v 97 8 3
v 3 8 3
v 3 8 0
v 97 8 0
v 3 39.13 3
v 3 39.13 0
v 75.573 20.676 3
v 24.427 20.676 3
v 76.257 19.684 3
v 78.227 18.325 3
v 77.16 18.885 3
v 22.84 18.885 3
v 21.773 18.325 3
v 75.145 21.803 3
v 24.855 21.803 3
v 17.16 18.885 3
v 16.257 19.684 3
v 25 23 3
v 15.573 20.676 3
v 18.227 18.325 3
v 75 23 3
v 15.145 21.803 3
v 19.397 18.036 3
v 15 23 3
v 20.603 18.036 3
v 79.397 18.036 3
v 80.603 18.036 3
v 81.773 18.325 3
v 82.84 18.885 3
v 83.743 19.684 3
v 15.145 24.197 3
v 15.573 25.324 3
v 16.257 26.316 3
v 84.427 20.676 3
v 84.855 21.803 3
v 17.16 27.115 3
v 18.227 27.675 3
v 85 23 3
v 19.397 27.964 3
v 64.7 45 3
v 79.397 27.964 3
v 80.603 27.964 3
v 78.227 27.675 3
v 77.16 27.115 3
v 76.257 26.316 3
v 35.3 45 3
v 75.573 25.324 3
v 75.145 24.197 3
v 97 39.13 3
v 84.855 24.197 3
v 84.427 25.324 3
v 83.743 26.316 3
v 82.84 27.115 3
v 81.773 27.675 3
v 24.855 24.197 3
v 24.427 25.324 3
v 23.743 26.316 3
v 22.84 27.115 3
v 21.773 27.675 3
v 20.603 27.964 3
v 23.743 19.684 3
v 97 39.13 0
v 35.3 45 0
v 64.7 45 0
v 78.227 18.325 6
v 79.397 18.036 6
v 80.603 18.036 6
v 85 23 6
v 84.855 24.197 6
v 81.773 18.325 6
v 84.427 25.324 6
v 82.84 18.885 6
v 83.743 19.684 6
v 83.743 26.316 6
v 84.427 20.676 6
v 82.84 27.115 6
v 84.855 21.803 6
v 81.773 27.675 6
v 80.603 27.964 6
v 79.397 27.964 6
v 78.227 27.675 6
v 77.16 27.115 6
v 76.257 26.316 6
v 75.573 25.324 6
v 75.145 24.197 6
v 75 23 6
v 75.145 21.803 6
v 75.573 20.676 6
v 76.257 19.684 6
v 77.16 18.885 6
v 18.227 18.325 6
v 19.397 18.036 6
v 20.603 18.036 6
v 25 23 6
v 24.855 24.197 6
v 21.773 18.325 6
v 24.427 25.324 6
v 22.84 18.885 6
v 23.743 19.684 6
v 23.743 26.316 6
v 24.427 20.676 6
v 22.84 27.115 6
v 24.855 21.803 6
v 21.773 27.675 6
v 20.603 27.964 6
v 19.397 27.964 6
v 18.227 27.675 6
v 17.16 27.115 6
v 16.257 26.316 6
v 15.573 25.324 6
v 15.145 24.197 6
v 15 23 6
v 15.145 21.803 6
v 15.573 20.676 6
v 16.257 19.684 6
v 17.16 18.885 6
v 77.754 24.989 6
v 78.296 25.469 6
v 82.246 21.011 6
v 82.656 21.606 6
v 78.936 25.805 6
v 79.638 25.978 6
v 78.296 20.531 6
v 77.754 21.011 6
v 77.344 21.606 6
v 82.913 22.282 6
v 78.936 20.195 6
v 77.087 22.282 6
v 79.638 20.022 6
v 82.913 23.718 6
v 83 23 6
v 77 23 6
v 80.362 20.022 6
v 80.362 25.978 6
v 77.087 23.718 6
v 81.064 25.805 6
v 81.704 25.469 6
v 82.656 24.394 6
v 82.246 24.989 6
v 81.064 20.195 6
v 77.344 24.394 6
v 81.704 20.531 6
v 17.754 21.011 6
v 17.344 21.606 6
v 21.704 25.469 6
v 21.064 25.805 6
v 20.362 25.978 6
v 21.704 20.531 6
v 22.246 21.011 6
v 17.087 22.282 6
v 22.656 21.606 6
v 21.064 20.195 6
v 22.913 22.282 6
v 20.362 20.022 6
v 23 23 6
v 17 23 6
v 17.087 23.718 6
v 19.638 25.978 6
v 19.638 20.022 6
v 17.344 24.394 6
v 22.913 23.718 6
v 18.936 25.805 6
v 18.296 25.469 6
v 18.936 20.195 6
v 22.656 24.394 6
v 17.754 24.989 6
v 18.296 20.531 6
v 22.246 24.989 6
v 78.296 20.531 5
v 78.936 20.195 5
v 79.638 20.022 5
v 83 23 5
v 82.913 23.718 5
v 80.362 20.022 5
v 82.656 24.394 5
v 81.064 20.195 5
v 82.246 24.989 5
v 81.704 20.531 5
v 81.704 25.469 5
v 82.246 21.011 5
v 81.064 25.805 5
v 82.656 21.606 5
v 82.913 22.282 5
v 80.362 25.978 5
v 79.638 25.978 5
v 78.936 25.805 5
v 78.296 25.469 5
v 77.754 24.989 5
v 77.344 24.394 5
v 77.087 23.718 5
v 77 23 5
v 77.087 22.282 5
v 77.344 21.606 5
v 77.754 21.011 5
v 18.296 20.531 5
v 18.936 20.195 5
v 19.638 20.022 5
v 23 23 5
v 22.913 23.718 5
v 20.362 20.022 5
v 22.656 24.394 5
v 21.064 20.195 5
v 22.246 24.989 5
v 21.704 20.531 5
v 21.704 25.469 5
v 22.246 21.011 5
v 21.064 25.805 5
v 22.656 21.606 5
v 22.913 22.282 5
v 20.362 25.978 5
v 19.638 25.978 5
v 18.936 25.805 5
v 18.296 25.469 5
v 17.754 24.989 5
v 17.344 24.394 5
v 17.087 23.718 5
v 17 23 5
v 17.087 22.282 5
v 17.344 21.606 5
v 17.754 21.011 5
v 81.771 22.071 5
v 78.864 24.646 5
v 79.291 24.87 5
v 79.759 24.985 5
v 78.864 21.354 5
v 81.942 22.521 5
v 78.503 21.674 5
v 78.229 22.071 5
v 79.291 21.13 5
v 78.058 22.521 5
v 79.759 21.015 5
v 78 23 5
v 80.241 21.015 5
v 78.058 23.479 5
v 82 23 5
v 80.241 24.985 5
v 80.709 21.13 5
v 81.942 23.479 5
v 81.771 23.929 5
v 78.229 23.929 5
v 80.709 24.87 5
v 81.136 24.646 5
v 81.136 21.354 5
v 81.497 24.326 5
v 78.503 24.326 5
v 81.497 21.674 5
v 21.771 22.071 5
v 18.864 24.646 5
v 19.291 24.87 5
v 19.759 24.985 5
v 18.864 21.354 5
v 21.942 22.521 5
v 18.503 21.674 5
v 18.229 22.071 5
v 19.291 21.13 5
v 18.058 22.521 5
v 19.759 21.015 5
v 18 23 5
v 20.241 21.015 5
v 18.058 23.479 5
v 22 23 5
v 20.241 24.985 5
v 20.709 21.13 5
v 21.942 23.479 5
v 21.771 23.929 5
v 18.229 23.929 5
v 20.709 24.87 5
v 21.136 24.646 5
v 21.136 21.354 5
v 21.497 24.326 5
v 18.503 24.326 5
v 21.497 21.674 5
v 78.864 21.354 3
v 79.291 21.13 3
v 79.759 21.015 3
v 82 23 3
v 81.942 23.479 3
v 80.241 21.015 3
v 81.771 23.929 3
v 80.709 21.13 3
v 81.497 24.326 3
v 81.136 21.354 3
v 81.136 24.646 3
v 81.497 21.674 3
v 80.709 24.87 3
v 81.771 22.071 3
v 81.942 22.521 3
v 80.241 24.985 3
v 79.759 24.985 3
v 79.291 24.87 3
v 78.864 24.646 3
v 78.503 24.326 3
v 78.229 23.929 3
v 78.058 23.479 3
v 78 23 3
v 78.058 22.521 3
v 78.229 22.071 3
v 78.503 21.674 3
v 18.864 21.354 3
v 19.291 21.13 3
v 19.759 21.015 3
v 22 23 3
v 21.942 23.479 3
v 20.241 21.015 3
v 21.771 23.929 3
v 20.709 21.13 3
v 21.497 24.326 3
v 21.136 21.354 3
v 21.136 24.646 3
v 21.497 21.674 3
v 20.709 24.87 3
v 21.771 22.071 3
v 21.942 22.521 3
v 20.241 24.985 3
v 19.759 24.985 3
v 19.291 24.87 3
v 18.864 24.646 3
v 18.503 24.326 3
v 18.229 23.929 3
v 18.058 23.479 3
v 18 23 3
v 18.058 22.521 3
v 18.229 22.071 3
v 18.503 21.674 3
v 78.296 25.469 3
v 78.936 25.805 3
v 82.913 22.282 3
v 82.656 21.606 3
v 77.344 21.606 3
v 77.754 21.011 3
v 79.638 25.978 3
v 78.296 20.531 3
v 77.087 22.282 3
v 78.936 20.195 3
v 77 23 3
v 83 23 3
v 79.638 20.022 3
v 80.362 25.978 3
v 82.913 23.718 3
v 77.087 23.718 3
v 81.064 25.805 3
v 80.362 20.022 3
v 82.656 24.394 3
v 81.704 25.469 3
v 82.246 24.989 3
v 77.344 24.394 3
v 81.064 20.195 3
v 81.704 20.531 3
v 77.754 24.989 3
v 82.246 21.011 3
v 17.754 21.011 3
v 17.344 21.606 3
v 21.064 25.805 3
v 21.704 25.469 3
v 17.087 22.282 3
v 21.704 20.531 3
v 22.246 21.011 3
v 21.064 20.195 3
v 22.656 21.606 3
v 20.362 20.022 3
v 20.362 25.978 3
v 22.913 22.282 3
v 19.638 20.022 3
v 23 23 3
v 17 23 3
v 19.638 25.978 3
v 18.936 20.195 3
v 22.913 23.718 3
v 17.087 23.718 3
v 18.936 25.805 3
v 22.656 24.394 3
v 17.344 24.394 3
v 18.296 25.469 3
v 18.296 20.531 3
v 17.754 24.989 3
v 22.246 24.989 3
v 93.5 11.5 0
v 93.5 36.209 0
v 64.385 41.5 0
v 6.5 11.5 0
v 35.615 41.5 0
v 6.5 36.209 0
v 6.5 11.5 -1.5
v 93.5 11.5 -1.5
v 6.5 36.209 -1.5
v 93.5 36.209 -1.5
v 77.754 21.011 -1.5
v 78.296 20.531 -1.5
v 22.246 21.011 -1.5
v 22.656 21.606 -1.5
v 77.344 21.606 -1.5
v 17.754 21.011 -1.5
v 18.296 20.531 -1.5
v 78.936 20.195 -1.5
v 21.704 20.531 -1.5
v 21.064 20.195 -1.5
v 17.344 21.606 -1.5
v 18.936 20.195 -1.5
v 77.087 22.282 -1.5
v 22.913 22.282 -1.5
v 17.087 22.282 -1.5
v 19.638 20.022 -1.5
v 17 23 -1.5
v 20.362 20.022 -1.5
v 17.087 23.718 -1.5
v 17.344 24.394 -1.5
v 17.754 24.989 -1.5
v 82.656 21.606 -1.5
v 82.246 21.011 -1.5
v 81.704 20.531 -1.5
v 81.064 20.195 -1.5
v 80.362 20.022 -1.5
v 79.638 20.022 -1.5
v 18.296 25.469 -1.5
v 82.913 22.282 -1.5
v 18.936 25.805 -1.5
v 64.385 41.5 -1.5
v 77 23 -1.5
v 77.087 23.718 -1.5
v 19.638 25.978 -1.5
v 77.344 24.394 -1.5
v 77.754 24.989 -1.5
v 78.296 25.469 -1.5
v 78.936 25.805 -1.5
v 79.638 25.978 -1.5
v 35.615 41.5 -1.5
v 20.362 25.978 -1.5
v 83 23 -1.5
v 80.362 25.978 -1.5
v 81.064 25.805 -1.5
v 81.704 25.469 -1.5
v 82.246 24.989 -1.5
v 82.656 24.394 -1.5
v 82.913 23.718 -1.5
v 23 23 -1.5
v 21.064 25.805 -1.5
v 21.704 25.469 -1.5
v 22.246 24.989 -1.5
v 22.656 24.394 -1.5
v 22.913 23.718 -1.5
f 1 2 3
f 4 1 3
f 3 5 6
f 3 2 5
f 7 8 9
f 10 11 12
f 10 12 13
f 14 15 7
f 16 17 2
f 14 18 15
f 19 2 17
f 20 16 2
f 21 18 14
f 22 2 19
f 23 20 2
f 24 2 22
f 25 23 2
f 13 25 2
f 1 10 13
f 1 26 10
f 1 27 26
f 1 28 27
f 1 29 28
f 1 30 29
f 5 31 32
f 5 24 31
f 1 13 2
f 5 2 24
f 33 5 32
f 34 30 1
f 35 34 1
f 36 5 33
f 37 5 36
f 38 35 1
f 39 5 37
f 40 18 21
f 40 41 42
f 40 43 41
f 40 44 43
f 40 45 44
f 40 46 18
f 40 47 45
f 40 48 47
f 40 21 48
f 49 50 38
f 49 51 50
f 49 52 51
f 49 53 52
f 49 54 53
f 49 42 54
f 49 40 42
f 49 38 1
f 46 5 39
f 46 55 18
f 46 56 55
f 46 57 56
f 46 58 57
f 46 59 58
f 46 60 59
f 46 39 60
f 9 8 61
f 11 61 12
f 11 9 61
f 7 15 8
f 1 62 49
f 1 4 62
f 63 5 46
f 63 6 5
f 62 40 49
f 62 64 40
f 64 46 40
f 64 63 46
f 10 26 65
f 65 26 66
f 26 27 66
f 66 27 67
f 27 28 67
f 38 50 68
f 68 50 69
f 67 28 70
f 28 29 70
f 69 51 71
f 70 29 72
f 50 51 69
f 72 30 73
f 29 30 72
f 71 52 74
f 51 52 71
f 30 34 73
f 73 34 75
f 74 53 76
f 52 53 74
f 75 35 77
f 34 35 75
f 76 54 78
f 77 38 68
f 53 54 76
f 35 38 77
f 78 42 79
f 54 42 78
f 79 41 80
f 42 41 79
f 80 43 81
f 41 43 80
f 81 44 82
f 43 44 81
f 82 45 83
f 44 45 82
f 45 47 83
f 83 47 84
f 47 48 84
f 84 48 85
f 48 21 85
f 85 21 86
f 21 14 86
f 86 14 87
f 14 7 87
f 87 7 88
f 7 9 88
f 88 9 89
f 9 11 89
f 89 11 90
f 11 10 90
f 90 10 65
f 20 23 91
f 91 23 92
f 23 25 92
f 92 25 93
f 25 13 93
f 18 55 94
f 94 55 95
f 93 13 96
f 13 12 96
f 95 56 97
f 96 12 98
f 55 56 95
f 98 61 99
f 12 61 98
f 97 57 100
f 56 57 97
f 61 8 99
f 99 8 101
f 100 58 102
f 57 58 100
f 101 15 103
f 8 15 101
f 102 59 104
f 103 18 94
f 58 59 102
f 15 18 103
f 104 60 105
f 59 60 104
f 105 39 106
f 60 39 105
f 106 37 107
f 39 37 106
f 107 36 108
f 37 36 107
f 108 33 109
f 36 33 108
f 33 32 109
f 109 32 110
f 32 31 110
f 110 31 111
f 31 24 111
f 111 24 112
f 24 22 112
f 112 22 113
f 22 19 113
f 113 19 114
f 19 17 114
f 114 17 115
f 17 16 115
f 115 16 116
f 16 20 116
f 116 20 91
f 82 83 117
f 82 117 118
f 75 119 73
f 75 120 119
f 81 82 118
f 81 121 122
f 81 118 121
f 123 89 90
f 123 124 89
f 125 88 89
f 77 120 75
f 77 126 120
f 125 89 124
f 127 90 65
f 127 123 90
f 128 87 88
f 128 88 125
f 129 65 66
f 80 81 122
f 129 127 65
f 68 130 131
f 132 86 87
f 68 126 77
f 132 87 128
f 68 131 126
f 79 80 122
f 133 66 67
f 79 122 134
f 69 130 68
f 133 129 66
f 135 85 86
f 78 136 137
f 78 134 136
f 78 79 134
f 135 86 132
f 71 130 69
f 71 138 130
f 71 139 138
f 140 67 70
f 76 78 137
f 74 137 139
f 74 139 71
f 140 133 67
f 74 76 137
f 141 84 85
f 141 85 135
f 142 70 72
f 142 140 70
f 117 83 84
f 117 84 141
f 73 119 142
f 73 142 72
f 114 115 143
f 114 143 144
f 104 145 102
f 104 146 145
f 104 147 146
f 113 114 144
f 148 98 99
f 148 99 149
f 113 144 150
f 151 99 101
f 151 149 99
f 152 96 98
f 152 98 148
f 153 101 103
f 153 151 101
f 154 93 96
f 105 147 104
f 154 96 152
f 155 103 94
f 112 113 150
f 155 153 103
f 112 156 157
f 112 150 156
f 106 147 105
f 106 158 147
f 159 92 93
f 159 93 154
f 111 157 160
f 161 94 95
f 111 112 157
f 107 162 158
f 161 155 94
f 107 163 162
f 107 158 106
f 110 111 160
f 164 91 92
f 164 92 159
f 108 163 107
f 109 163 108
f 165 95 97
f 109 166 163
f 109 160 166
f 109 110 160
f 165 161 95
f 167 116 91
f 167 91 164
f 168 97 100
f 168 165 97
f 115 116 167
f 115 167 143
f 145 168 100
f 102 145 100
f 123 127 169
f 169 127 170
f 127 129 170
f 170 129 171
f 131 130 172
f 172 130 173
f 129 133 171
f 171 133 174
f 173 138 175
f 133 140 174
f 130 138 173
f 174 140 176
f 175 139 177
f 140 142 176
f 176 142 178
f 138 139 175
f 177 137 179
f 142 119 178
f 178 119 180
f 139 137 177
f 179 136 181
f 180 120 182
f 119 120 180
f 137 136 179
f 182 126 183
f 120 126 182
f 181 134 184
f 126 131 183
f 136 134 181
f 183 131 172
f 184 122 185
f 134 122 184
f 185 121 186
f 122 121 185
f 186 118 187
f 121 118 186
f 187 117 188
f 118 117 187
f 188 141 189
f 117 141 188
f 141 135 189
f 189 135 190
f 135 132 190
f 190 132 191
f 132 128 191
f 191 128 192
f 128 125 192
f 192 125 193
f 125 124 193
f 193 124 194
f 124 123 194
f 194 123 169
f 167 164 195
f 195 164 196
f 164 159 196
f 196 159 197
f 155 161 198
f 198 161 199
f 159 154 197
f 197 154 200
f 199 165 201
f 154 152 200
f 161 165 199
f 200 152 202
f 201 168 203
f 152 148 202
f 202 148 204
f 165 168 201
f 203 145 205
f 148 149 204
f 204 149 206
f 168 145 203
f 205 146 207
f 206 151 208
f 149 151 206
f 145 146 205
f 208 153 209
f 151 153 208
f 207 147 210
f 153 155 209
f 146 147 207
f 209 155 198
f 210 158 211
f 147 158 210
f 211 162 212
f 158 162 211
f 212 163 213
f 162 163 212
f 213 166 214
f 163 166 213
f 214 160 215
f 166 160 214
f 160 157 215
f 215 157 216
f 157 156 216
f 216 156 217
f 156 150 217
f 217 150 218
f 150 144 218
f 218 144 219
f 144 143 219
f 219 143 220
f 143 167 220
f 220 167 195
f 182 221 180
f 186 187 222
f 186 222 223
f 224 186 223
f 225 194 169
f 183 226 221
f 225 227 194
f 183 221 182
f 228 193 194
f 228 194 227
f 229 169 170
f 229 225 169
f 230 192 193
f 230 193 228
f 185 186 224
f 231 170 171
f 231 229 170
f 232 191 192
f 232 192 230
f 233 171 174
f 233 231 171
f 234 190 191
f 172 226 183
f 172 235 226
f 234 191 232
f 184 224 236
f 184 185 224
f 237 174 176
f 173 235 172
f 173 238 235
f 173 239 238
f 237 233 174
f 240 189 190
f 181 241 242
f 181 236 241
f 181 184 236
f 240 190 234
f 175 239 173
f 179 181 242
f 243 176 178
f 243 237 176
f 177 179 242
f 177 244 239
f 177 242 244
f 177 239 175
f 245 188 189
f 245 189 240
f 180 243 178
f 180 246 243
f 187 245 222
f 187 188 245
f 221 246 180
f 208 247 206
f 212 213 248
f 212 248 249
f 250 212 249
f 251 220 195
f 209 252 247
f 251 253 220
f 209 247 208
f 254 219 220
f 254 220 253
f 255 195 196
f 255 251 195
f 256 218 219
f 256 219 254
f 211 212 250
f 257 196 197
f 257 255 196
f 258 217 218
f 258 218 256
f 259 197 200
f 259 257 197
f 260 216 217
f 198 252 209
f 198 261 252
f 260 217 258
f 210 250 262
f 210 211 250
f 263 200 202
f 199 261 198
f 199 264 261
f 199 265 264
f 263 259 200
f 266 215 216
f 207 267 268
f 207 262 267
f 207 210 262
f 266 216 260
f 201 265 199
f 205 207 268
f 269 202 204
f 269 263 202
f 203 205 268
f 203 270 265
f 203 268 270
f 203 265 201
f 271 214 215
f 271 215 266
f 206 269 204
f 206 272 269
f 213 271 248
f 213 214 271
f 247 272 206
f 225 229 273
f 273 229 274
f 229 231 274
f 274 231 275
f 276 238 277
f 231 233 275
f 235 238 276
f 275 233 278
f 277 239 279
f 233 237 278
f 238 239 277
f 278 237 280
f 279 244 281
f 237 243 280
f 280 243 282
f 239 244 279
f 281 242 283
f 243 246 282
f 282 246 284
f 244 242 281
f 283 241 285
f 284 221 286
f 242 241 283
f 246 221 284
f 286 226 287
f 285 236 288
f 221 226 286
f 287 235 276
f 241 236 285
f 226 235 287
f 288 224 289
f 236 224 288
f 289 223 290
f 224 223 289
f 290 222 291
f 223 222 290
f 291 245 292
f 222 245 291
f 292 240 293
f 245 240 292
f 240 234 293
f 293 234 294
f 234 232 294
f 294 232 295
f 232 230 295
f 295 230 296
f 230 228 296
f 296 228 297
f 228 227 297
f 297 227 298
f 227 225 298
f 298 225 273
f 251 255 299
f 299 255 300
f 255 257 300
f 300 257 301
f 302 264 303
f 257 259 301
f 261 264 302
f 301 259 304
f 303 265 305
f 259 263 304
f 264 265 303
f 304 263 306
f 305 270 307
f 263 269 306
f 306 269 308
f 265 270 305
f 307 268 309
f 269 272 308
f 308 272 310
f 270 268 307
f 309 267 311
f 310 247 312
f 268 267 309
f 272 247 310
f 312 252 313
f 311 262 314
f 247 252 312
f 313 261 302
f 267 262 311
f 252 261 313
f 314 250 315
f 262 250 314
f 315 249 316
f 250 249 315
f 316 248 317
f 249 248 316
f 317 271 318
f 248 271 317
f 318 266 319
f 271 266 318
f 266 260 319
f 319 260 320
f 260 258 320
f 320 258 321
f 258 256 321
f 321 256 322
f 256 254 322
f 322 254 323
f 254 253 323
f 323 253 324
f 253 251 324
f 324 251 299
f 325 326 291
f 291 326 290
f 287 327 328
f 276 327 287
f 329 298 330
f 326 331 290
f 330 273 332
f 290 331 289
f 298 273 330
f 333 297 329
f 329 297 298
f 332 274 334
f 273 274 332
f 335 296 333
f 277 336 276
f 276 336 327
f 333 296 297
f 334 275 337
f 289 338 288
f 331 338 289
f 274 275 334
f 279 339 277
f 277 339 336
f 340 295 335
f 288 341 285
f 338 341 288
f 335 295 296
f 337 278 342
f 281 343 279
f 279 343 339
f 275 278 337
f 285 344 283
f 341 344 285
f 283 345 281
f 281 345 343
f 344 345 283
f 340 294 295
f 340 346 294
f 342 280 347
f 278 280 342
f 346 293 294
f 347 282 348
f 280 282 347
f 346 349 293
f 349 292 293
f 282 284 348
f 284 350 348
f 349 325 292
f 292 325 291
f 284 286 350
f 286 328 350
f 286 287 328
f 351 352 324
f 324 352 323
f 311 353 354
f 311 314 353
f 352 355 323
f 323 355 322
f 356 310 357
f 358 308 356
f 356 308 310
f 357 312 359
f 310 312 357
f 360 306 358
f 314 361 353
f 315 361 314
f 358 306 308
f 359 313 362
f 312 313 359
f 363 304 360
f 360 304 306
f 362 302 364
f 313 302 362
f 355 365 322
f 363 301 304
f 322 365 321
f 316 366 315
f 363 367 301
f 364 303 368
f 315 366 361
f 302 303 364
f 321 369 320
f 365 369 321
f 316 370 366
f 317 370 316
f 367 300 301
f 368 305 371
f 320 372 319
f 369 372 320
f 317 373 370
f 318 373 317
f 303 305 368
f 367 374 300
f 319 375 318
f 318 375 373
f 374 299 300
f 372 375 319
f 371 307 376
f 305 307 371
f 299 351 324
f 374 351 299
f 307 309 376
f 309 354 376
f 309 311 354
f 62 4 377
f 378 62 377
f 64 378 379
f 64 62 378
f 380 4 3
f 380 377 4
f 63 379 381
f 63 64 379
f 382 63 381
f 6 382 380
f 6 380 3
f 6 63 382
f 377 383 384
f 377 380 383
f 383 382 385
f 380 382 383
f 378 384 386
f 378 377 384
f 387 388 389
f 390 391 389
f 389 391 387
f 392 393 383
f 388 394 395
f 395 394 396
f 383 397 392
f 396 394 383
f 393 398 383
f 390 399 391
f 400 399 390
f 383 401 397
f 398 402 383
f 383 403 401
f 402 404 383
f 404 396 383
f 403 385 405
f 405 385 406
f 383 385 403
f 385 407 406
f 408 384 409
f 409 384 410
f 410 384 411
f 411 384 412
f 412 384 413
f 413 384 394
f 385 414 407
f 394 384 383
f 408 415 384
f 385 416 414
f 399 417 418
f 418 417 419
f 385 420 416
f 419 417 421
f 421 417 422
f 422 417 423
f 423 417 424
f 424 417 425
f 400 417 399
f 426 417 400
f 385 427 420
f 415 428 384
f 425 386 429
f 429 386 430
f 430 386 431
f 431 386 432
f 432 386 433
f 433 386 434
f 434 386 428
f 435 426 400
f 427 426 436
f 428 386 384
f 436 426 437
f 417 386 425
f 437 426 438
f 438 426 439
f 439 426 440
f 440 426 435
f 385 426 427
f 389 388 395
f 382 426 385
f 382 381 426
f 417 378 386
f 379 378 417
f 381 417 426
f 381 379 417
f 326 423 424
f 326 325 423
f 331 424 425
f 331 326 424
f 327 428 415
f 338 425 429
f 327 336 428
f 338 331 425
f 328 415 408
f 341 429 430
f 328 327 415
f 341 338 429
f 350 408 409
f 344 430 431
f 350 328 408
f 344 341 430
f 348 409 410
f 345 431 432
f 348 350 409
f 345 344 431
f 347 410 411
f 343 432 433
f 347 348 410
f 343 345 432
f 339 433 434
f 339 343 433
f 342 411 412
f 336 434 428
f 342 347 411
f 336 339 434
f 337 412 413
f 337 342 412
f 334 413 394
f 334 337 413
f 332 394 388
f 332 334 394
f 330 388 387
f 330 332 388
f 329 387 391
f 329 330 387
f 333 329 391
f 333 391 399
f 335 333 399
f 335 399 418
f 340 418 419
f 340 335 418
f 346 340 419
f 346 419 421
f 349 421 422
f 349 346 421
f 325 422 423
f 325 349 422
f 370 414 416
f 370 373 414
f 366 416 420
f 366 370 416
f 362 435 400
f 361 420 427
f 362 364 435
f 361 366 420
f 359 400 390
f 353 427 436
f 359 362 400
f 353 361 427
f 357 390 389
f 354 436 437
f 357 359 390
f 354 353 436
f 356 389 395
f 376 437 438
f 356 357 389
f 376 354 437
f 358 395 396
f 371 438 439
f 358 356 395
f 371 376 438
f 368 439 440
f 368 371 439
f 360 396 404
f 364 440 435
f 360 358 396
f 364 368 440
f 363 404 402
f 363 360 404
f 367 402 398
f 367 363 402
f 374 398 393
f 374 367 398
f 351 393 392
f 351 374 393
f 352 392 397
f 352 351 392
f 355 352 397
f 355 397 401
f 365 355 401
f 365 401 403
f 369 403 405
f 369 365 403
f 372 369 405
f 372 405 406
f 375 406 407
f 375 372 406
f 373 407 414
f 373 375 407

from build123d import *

# Parameters (mm, degrees)
SKETCH_W           = 100
SKETCH_H           = 45
PAD_DEPTH          = 20
PAD_FACE2_W        = 45
PAD_FACE2_H        = 20
POCKET_DEPTH       = 3
POCKET_FACE5_W     = 45
POCKET_FACE5_H     = 20
POCKET001_DEPTH    = 3
POCKET001_FACE1_W  = 94
POCKET001_FACE1_H  = 20
POCKET002_DEPTH    = 8
POCKET003_DEPTH    = 20
POCKET004_DEPTH    = 17
PAD001_DEPTH       = 2
SKETCH003_R        = 4.025
POCKET005_DEPTH    = 5
SKETCH004_R        = 4.025
POCKET006_DEPTH    = 5
SKETCH005_R        = 4.025
POCKET007_DEPTH    = 5
SKETCH006_R        = 4
SKETCH006_R_2      = 2
POCKET008_DEPTH    = 5
SKETCH007_R        = 3
POCKET009_DEPTH    = 1
PAD002_DEPTH       = 1
SKETCH008_R        = 4.05
POCKET010_DEPTH    = 5
SKETCH009_R        = 4.05
POCKET011_DEPTH    = 5
SKETCH010_R        = 4.05
POCKET012_DEPTH    = 5
SKETCH011_R        = 4
POCKET013_DEPTH    = 5
SKETCH012_W        = 15.333549
SKETCH012_H        = 10.93085
PAD003_DEPTH       = 3
POCKET014_DEPTH    = 20
SKETCH013_W        = 44.347308
SKETCH013_H        = 21.123651
PAD004_DEPTH       = 3
SKETCH014_R        = 3
POCKET015_DEPTH    = 5
SKETCH015_R        = 5
PAD005_DEPTH       = 3
SKETCH016_R        = 2
POCKET016_DEPTH    = 5
SKETCH017_R        = 3
POCKET017_DEPTH    = 1
POCKET017_FACE5_R  = 3
PAD006_DEPTH       = 1.5
PAD006_FACE5_W     = 94
PAD006_FACE5_H     = 1.5
POCKET018_DEPTH    = 3.5
POCKET018_FACE7_W  = 27.63
POCKET018_FACE7_H  = 1.5
POCKET019_DEPTH    = 3.5
POCKET019_FACE12_W = 27.63
POCKET019_FACE12_H = 1.5
POCKET020_DEPTH    = 3.5
POCKET020_FACE17_W = 32.8290557281
POCKET020_FACE17_H = 1.5
POCKET021_DEPTH    = 3.5
POCKET021_FACE14_W = 32.8290557281
POCKET021_FACE14_H = 1.5
POCKET022_DEPTH    = 3.5
POCKET022_FACE18_W = 29.4
POCKET022_FACE18_H = 1.5
POCKET023_DEPTH    = 3.5


with BuildPart() as part:
    # Sketch → Pad (new body)
    with BuildSketch(Plane.XY):
        with Locations((50, 22.5)):
            Rectangle(SKETCH_W, SKETCH_H)
    extrude(amount=PAD_DEPTH)

    # Pad Face2 → Pocket (cut)
    with BuildSketch(Plane(origin=(100, 22.5, 10), x_dir=(0, -1, 0), z_dir=(1, 0, 0))):
        Rectangle(PAD_FACE2_W, PAD_FACE2_H)
    extrude(amount=-POCKET_DEPTH, mode=Mode.SUBTRACT)

    # Pocket Face5 → Pocket001 (cut)
    with BuildSketch(Plane(origin=(0, 22.5, 10), x_dir=(0, 1, 0), z_dir=(-1, 0, 0))):
        Rectangle(POCKET_FACE5_W, POCKET_FACE5_H)
    extrude(amount=-POCKET001_DEPTH, mode=Mode.SUBTRACT)

    # Pocket001 Face1 → Pocket002 (cut)
    with BuildSketch(Plane(origin=(50, 0, 10), x_dir=(-1, 0, 0), z_dir=(0, -1, 0))):
        Rectangle(POCKET001_FACE1_W, POCKET001_FACE1_H)
    extrude(amount=-POCKET002_DEPTH, mode=Mode.SUBTRACT)

    # Sketch001 (on Face6 of Pocket002) → Pocket003 (cut)
    with BuildSketch(Plane.XY.offset(20)):
        Polygon((3, 45), (3, 39.13), (35.3, 45), align=None)
        Polygon((64.7, 45), (97, 45), (97, 39.13), align=None)
    extrude(amount=-POCKET003_DEPTH, mode=Mode.SUBTRACT)

    # Sketch002 (on Face8 of Pocket003) → Pocket004 (cut)
    with BuildSketch(Plane.XY.offset(20)):
        Polygon((6, 36.6260629355), (6, 11), (94, 11), (94, 36.6260629355), (64.6580556127, 42), (35.3419443873, 42), align=None)
    extrude(amount=-POCKET004_DEPTH, mode=Mode.SUBTRACT)

    # Pocket004 Face8 → Pad001 (add)
    with BuildSketch(Plane(origin=(50, 25.1421826555, 20), x_dir=(0, 1, 0), z_dir=(0, 0, 1))):
        Polygon((-17.1421826555, 47), (-17.1421826555, -47), (13.9878173445, -47), (19.8578173445, -14.7), (19.8578173445, 14.7), (13.9878173445, 47), align=None)
        Polygon((-14.1421826555, 44), (11.4838802799, 44), (16.8578173445, 14.6580556127), (16.8578173445, -14.6580556127), (11.4838802799, -44), (-14.1421826555, -44), align=None, mode=Mode.SUBTRACT)
    extrude(amount=PAD001_DEPTH)

    # Sketch003 (on Face6 of Pad001) → Pocket005 (cut)
    with BuildSketch(Plane(origin=(0, 45, 0), x_dir=(-1, 0, 0), z_dir=(0, 1, 0))):
        with Locations((-59.3625, 16.975)):
            Circle(SKETCH003_R)
        with Locations((-50, 16.975)):
            Circle(SKETCH003_R)
        with Locations((-40.6375, 16.975)):
            Circle(SKETCH003_R)
        with Locations((-59.3625, 7.525)):
            Circle(SKETCH003_R)
        with Locations((-50, 7.525)):
            Circle(SKETCH003_R)
        with Locations((-40.6375, 7.525)):
            Circle(SKETCH003_R)
    extrude(amount=-POCKET005_DEPTH, mode=Mode.SUBTRACT)

    # Sketch004 (on Face6 of Pocket005) → Pocket006 (cut)
    with BuildSketch(Plane(origin=(9.9850961575, 54.9435444444, 0), x_dir=(-0.983884528, 0.178805021, 0), z_dir=(0.178805021, 0.983884528, 0))):
        with Locations((-80.0098530156, 16.975)):
            Circle(SKETCH004_R)
        with Locations((-70.9736030156, 16.975)):
            Circle(SKETCH004_R)
        with Locations((-61.6111030156, 16.975)):
            Circle(SKETCH004_R)
        with Locations((-80.3361030156, 7.525)):
            Circle(SKETCH004_R)
        with Locations((-70.9736030156, 7.525)):
            Circle(SKETCH004_R)
        with Locations((-61.6111030156, 7.525)):
            Circle(SKETCH004_R)
    extrude(amount=-POCKET006_DEPTH, mode=Mode.SUBTRACT)

    # Sketch005 (on Face4 of Pocket006) → Pocket007 (cut)
    with BuildSketch(Plane(origin=(-6.7879726028, 37.3511950719, 0), x_dir=(-0.983884528, -0.178805021, 0), z_dir=(-0.178805021, 0.983884528, 0))):
        with Locations((-36.7773497852, 16.975)):
            Circle(SKETCH005_R)
        with Locations((-27.4148497852, 16.975)):
            Circle(SKETCH005_R)
        with Locations((-18.0523497852, 16.975)):
            Circle(SKETCH005_R)
        with Locations((-36.7773497852, 7.525)):
            Circle(SKETCH005_R)
        with Locations((-27.4148497852, 7.525)):
            Circle(SKETCH005_R)
        with Locations((-18.0523497852, 7.525)):
            Circle(SKETCH005_R)
    extrude(amount=-POCKET007_DEPTH, mode=Mode.SUBTRACT)

    # Sketch006 (on Face1 of Pocket007) → Pocket008 (cut)
    with BuildSketch(Plane(origin=(0, 0, 0), x_dir=(1, 0, 0), z_dir=(0, 0, -1))):
        with Locations((50, -23)):
            Circle(SKETCH006_R)
        with Locations((65.7, -18)):
            Circle(SKETCH006_R_2)
        with Locations((34.3, -18)):
            Circle(SKETCH006_R_2)
        with Locations((20, -23)):
            Circle(SKETCH006_R_2)
        with Locations((80, -23)):
            Circle(SKETCH006_R_2)
    extrude(amount=-POCKET008_DEPTH, mode=Mode.SUBTRACT)

    # Sketch007 (on Face1 of Pocket008) → Pocket009 (cut)
    with BuildSketch(Plane(origin=(0, 0, 0), x_dir=(1, 0, 0), z_dir=(0, 0, -1))):
        with Locations((20, -23)):
            Circle(SKETCH007_R)
        with Locations((80, -23)):
            Circle(SKETCH007_R)
    extrude(amount=-POCKET009_DEPTH, mode=Mode.SUBTRACT)

    # Pocket009 Face13 → Pad002 (add)
    with BuildSketch(Plane(origin=(50, 25.1421826555, 22), x_dir=(0, 1, 0), z_dir=(0, 0, 1))):
        Polygon((-17.1421826555, 47), (-17.1421826555, -47), (13.9878173445, -47), (19.8578173445, -14.7), (19.8578173445, 14.7), (13.9878173445, 47), align=None)
        Polygon((-14.1421826555, 44), (11.4838802799, 44), (16.8578173445, 14.6580556127), (16.8578173445, -14.6580556127), (11.4838802799, -44), (-14.1421826555, -44), align=None, mode=Mode.SUBTRACT)
    extrude(amount=PAD002_DEPTH)

    # Sketch008 (on Face30 of Pad002) → Pocket010 (cut)
    with BuildSketch(Plane(origin=(0, 45, 0), x_dir=(-1, 0, 0), z_dir=(0, 1, 0))):
        with Locations((-59.3625, 16.975)):
            Circle(SKETCH008_R)
        with Locations((-50.000011, 16.975002)):
            Circle(SKETCH008_R)
        with Locations((-40.6375, 16.975)):
            Circle(SKETCH008_R)
        with Locations((-40.6375, 7.525)):
            Circle(SKETCH008_R)
        with Locations((-50, 7.525)):
            Circle(SKETCH008_R)
        with Locations((-59.3625, 7.525)):
            Circle(SKETCH008_R)
    extrude(amount=-POCKET010_DEPTH, mode=Mode.SUBTRACT)

    # Sketch009 (on Face6 of Pocket010) → Pocket011 (cut)
    with BuildSketch(Plane(origin=(9.9850961575, 54.9435444444, 0), x_dir=(-0.983884528, 0.178805021, 0), z_dir=(0.178805021, 0.983884528, 0))):
        with Locations((-80.0098530156, 16.975)):
            Circle(SKETCH009_R)
        with Locations((-70.9736030156, 16.975)):
            Circle(SKETCH009_R)
        with Locations((-61.6111030156, 16.975)):
            Circle(SKETCH009_R)
        with Locations((-61.6111030156, 7.525)):
            Circle(SKETCH009_R)
        with Locations((-70.9736030156, 7.525)):
            Circle(SKETCH009_R)
        with Locations((-80.3361030156, 7.525)):
            Circle(SKETCH009_R)
    extrude(amount=-POCKET011_DEPTH, mode=Mode.SUBTRACT)

    # Sketch010 (on Face5 of Pocket011) → Pocket012 (cut)
    with BuildSketch(Plane(origin=(-6.7879726028, 37.3511950719, 0), x_dir=(-0.983884528, -0.178805021, 0), z_dir=(-0.178805021, 0.983884528, 0))):
        with Locations((-36.7773497852, 16.975)):
            Circle(SKETCH010_R)
        with Locations((-27.4148497852, 16.975)):
            Circle(SKETCH010_R)
        with Locations((-18.0523497852, 16.975)):
            Circle(SKETCH010_R)
        with Locations((-18.0523497852, 7.525)):
            Circle(SKETCH010_R)
        with Locations((-27.4148497852, 7.525)):
            Circle(SKETCH010_R)
        with Locations((-36.7773497852, 7.525)):
            Circle(SKETCH010_R)
    extrude(amount=-POCKET012_DEPTH, mode=Mode.SUBTRACT)

    # Sketch011 (on Face3 of Pocket012) → Pocket013 (cut)
    with BuildSketch(Plane(origin=(3, 0, 0), x_dir=(0, -1, 0), z_dir=(-1, 0, 0))):
        with Locations((-20, 15)):
            Circle(SKETCH011_R)
    extrude(amount=-POCKET013_DEPTH, mode=Mode.SUBTRACT)

    # Sketch012 (on Face3 of Pocket013) → Pad003 (join)
    with BuildSketch(Plane(origin=(3, 0, 0), x_dir=(0, -1, 0), z_dir=(-1, 0, 0))):
        with Locations((-20.0389255, 14.391196)):
            Rectangle(SKETCH012_W, SKETCH012_H)
    extrude(amount=-PAD003_DEPTH)

    # Cut004 Face13 → Pocket014 (cut)
    with BuildSketch(Plane(origin=(50, 25.1421826555, 23), x_dir=(0, 1, 0), z_dir=(0, 0, 1))):
        Polygon((-17.1421826555, 47), (-17.1421826555, -47), (13.9878173445, -47), (19.8578173445, -14.7), (19.8578173445, 14.7), (13.9878173445, 47), align=None)
        Polygon((-14.1421826555, 44), (11.4838802799, 44), (16.8578173445, 14.6580556127), (16.8578173445, -14.6580556127), (11.4838802799, -44), (-14.1421826555, -44), align=None, mode=Mode.SUBTRACT)
    extrude(amount=-POCKET014_DEPTH, mode=Mode.SUBTRACT)

    # Sketch013 (on Face14 of Pocket014) → Pad004 (join)
    with BuildSketch(Plane.XY.offset(3)):
        with Locations((50.079177, 23.7179785)):
            Rectangle(SKETCH013_W, SKETCH013_H)
    extrude(amount=-PAD004_DEPTH)

    # Sketch014 (on Face7 of Pad004) → Pocket015 (cut)
    with BuildSketch(Plane(origin=(0, 0, 0), x_dir=(1, 0, 0), z_dir=(0, 0, -1))):
        with Locations((20, -23)):
            Circle(SKETCH014_R)
        with Locations((80, -23)):
            Circle(SKETCH014_R)
    extrude(amount=-POCKET015_DEPTH, mode=Mode.SUBTRACT)

    # Sketch015 (on Face3 of Pocket015) → Pad005 (join)
    with BuildSketch(Plane.XY.offset(3)):
        with Locations((20, 23)):
            Circle(SKETCH015_R)
        with Locations((80, 23)):
            Circle(SKETCH015_R)
    extrude(amount=PAD005_DEPTH)

    # Sketch016 (on Face13 of Pad005) → Pocket016 (cut)
    with BuildSketch(Plane.XY.offset(6)):
        with Locations((20, 23)):
            Circle(SKETCH016_R)
        with Locations((80, 23)):
            Circle(SKETCH016_R)
    extrude(amount=-POCKET016_DEPTH, mode=Mode.SUBTRACT)

    # Sketch017 (on Face14 of Pocket016) → Pocket017 (cut)
    with BuildSketch(Plane.XY.offset(6)):
        with Locations((20, 23)):
            Circle(SKETCH017_R)
        with Locations((80, 23)):
            Circle(SKETCH017_R)
    extrude(amount=-POCKET017_DEPTH, mode=Mode.SUBTRACT)

    # Pocket017 Face5 → Pad006 (add)
    with BuildSketch(Plane(origin=(50, 25.5907028779, 0), x_dir=(0, -1, 0), z_dir=(0, 0, -1))):
        Polygon((17.5907028779, -47), (17.5907028779, 47), (-13.5392971221, 47), (-19.4092971221, 14.7), (-19.4092971221, -14.7), (-13.5392971221, -47), align=None)
        with Locations((2.5907028779, -30)):
            Circle(POCKET017_FACE5_R, mode=Mode.SUBTRACT)
        with Locations((2.5907028779, 30)):
            Circle(POCKET017_FACE5_R, mode=Mode.SUBTRACT)
    extrude(amount=PAD006_DEPTH)

    # Pad006 Face5 → Pocket018 (cut)
    with BuildSketch(Plane(origin=(50, 8, -0.75), x_dir=(-1, 0, 0), z_dir=(0, -1, 0))):
        Rectangle(PAD006_FACE5_W, PAD006_FACE5_H)
    extrude(amount=-POCKET018_DEPTH, mode=Mode.SUBTRACT)

    # Pocket018 Face7 → Pocket019 (cut)
    with BuildSketch(Plane(origin=(3, 25.315, -0.75), x_dir=(0, 1, 0), z_dir=(-1, 0, 0))):
        Rectangle(POCKET018_FACE7_W, POCKET018_FACE7_H)
    extrude(amount=-POCKET019_DEPTH, mode=Mode.SUBTRACT)

    # Pocket019 Face12 → Pocket020 (cut)
    with BuildSketch(Plane(origin=(97, 25.315, -0.75), x_dir=(0, -1, 0), z_dir=(1, 0, 0))):
        Rectangle(POCKET019_FACE12_W, POCKET019_FACE12_H)
    extrude(amount=-POCKET020_DEPTH, mode=Mode.SUBTRACT)

    # Pocket020 Face17 → Pocket021 (cut)
    with BuildSketch(Plane(origin=(80.85, 42.065, -0.75), x_dir=(0.983884528, -0.178805021, 0), z_dir=(0.178805021, 0.983884528, 0))):
        Rectangle(POCKET020_FACE17_W, POCKET020_FACE17_H)
    extrude(amount=-POCKET021_DEPTH, mode=Mode.SUBTRACT)

    # Pocket021 Face14 → Pocket022 (cut)
    with BuildSketch(Plane(origin=(19.15, 42.065, -0.75), x_dir=(0.983884528, 0.178805021, 0), z_dir=(-0.178805021, 0.983884528, 0))):
        Rectangle(POCKET021_FACE14_W, POCKET021_FACE14_H)
    extrude(amount=-POCKET022_DEPTH, mode=Mode.SUBTRACT)

    # Pocket022 Face18 → Pocket023 (cut)
    with BuildSketch(Plane(origin=(50, 45, -0.75), x_dir=(1, 0, 0), z_dir=(0, 1, 0))):
        Rectangle(POCKET022_FACE18_W, POCKET022_FACE18_H)
    extrude(amount=-POCKET023_DEPTH, mode=Mode.SUBTRACT)


solid = part.part
